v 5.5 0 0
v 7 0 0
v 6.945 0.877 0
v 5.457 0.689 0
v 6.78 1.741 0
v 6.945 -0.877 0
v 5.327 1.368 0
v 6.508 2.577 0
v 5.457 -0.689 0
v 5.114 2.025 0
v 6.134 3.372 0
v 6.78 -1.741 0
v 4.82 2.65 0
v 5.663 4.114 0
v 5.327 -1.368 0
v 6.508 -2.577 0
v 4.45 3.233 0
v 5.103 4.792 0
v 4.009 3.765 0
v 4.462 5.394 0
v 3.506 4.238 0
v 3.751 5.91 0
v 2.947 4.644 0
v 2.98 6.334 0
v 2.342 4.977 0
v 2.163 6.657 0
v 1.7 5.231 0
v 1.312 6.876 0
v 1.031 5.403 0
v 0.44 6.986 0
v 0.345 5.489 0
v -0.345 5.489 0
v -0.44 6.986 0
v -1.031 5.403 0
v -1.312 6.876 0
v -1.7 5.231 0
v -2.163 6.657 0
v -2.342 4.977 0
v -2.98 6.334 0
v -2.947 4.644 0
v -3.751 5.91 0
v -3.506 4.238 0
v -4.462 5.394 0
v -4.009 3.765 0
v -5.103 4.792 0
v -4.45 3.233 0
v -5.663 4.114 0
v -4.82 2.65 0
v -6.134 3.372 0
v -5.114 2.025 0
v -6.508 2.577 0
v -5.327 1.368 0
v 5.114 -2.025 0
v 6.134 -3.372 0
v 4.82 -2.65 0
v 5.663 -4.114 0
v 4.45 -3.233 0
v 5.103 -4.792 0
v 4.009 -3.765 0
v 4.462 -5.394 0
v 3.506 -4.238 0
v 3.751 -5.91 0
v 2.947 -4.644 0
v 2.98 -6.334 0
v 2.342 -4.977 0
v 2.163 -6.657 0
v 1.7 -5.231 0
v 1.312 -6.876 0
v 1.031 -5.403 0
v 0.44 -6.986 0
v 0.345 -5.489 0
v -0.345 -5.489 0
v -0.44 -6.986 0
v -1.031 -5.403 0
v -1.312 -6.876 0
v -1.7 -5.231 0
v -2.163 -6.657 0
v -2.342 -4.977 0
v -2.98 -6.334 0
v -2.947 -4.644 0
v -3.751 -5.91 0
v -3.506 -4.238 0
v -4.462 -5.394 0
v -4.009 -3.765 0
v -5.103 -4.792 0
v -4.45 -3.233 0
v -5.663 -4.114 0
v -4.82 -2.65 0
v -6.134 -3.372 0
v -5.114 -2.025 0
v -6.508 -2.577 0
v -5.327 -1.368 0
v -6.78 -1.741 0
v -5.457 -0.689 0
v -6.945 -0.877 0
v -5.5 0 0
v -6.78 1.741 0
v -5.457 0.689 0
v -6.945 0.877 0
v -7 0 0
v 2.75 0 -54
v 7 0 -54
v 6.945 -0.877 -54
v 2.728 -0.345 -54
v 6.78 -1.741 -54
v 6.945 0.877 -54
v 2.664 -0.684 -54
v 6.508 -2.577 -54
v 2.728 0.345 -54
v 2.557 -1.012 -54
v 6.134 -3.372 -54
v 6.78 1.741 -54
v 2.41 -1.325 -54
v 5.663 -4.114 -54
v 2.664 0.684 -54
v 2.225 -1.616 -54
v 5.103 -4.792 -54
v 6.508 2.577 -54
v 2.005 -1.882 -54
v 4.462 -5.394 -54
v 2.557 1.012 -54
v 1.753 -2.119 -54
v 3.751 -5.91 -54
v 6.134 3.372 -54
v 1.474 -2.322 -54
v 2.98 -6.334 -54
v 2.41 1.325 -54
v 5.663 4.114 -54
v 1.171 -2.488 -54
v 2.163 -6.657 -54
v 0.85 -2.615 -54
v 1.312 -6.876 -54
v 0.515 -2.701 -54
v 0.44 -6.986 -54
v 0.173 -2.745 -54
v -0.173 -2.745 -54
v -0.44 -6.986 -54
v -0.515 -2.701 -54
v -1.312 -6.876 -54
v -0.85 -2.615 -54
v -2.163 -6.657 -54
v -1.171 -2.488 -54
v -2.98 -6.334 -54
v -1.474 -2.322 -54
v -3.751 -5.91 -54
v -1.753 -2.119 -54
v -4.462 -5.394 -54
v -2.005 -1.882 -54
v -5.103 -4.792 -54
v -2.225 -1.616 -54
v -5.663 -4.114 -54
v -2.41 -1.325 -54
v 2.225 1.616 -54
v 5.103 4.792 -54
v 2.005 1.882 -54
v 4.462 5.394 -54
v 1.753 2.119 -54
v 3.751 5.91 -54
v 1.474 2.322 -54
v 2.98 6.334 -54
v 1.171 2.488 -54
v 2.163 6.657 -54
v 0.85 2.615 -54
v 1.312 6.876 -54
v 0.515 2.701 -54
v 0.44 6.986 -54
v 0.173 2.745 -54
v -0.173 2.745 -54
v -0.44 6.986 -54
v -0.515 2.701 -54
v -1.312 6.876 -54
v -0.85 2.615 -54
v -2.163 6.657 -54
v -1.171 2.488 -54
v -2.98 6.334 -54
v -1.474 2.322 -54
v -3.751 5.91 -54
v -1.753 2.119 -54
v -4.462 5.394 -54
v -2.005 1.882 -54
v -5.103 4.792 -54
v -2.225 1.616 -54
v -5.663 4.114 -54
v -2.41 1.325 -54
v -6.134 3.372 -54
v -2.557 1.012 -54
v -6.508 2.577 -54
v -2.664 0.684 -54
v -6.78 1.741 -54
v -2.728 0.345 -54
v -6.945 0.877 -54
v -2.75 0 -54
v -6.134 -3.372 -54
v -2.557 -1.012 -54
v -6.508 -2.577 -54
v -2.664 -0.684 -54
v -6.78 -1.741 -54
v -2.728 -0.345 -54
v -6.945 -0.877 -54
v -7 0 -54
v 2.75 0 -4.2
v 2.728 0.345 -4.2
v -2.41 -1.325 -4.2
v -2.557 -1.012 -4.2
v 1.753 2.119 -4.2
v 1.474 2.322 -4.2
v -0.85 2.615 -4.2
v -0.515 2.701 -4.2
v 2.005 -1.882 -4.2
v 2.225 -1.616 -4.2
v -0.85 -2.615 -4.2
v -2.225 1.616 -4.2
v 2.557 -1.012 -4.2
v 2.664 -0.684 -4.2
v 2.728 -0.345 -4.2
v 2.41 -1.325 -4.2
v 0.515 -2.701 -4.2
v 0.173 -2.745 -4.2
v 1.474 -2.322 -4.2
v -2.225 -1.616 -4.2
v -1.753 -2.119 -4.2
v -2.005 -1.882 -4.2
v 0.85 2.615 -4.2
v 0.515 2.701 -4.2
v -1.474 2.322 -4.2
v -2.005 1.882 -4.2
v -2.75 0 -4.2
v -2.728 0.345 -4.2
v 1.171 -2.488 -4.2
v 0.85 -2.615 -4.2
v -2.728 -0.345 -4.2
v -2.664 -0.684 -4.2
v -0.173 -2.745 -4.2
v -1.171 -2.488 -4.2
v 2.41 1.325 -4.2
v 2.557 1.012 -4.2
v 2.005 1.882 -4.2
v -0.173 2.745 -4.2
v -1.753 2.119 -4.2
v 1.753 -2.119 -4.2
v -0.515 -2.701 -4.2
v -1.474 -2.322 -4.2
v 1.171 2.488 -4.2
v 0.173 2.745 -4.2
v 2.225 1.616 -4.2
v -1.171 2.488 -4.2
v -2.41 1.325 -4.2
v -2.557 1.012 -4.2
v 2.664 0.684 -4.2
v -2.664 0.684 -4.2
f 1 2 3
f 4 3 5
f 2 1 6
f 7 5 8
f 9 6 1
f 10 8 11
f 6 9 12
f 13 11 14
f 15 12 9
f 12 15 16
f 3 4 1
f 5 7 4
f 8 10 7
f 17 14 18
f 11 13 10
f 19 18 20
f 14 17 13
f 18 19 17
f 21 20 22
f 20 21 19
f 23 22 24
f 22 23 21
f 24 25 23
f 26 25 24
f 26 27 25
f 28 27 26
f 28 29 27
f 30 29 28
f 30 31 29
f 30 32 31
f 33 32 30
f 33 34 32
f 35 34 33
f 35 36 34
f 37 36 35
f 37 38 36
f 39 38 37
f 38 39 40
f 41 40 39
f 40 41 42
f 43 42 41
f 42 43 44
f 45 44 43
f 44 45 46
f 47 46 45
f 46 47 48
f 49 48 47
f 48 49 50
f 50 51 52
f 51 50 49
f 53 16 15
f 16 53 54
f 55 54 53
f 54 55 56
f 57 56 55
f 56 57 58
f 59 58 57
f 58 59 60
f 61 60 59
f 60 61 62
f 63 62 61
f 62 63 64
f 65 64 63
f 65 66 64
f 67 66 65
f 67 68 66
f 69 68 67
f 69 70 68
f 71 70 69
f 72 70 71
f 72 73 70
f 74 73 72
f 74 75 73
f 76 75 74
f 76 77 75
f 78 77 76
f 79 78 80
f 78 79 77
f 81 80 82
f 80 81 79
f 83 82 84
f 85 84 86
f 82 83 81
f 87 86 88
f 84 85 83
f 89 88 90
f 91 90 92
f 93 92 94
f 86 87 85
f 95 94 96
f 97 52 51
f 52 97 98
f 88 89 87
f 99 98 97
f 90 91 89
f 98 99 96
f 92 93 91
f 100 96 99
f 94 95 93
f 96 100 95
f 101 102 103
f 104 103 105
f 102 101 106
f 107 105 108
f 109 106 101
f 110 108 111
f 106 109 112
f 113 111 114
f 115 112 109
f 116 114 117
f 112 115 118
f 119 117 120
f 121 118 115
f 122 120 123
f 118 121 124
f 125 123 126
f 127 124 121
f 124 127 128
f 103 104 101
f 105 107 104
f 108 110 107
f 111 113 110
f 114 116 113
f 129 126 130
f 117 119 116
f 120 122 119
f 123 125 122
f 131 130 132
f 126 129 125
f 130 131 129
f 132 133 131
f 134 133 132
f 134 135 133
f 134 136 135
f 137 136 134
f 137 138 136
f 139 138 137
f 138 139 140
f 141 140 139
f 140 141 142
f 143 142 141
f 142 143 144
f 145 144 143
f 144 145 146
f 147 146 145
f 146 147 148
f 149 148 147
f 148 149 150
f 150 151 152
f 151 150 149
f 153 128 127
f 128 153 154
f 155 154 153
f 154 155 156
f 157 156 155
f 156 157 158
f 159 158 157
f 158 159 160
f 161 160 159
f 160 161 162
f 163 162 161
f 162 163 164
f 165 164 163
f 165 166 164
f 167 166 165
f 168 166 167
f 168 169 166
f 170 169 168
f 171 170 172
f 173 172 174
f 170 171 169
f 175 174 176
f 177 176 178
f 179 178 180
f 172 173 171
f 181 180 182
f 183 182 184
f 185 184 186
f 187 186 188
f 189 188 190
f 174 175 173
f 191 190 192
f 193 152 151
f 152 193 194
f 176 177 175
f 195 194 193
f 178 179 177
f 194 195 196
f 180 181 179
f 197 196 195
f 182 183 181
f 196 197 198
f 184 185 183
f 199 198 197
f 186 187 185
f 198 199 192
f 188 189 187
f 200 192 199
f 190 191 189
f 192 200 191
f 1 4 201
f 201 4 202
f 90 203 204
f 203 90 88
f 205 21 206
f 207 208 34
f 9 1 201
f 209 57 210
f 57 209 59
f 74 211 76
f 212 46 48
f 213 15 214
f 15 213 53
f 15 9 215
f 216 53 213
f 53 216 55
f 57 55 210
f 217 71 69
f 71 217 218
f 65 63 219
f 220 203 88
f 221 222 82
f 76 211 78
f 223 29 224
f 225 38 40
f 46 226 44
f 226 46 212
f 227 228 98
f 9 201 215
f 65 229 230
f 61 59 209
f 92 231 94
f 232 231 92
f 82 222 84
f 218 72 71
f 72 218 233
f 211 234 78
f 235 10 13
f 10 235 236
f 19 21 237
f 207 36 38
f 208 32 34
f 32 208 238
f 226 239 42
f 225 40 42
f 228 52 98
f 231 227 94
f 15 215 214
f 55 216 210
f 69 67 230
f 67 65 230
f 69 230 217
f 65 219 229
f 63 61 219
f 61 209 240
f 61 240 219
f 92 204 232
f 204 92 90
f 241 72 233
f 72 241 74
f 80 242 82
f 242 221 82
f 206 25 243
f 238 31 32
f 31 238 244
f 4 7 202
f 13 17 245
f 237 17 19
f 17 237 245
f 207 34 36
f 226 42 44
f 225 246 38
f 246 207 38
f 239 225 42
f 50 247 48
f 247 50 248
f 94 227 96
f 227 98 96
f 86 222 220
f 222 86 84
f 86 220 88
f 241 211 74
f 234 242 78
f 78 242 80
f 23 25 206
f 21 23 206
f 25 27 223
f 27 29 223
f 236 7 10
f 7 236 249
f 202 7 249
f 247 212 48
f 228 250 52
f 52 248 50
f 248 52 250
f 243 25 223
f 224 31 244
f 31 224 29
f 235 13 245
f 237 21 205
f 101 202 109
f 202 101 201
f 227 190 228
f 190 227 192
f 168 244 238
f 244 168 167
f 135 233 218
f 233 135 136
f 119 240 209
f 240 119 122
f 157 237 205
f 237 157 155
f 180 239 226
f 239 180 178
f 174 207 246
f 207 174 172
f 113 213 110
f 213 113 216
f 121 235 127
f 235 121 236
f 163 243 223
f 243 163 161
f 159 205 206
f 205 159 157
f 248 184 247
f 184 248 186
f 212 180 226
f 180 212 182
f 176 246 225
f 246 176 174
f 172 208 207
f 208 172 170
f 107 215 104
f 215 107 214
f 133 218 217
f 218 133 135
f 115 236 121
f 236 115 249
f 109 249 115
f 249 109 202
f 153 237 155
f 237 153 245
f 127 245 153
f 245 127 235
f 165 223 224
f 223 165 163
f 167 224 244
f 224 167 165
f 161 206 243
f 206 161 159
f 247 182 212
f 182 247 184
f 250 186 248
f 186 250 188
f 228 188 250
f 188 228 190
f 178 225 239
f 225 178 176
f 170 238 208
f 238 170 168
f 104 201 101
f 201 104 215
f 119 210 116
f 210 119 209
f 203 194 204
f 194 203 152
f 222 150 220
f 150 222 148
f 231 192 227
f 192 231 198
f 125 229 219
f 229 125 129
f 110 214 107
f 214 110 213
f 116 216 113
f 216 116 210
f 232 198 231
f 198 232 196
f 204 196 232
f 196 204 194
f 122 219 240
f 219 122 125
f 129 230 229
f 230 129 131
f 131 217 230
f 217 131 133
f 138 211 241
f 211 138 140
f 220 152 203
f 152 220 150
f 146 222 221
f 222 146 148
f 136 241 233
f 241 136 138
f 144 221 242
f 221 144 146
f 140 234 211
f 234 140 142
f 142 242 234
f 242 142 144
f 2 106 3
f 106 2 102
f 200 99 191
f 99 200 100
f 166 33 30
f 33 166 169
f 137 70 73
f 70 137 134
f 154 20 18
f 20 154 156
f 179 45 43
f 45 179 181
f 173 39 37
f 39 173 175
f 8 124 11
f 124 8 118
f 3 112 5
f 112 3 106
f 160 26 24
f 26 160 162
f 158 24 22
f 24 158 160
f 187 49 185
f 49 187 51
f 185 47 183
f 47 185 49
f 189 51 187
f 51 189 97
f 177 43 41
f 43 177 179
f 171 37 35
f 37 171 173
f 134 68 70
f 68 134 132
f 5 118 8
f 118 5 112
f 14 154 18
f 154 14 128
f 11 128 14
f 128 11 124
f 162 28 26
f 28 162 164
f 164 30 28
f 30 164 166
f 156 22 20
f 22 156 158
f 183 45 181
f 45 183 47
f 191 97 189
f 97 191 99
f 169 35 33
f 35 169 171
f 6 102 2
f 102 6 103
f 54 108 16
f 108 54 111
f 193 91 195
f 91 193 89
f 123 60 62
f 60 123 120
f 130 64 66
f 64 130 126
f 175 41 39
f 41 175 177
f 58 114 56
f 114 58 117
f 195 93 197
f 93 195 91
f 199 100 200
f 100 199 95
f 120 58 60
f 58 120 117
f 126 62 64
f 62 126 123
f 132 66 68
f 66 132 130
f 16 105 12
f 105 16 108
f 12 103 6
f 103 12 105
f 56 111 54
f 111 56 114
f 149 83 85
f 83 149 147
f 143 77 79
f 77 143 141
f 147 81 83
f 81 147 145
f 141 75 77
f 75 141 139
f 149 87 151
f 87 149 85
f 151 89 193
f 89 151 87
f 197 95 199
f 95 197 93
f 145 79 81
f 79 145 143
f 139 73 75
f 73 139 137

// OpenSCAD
$fn = 50;


difference() {
	union() {
		translate(v = [0, 0, -54.0000000000]) {
			cylinder(h = 54, r = 7.0000000000);
		}
		cylinder(h = 0, r = 17.0000000000);
	}
	union() {
		translate(v = [0, 0, 0]) {
			rotate(a = [0, 0, 0]) {
				difference() {
					union() {
						#translate(v = [0, 0, -54.0000000000]) {
							cylinder(h = 54, r = 2.2500000000);
						}
						#translate(v = [0, 0, -4.2000000000]) {
							cylinder(h = 4.2000000000, r = 7.0000000000, r1 = 2.7500000000, r2 = 5.5000000000);
						}
						#translate(v = [0, 0, -54.0000000000]) {
							cylinder(h = 54, r = 2.7500000000);
						}
						#translate(v = [0, 0, -54.0000000000]) {
							cylinder(h = 54, r = 2.2500000000);
						}
					}
					union();
				}
			}
		}
	}
}
